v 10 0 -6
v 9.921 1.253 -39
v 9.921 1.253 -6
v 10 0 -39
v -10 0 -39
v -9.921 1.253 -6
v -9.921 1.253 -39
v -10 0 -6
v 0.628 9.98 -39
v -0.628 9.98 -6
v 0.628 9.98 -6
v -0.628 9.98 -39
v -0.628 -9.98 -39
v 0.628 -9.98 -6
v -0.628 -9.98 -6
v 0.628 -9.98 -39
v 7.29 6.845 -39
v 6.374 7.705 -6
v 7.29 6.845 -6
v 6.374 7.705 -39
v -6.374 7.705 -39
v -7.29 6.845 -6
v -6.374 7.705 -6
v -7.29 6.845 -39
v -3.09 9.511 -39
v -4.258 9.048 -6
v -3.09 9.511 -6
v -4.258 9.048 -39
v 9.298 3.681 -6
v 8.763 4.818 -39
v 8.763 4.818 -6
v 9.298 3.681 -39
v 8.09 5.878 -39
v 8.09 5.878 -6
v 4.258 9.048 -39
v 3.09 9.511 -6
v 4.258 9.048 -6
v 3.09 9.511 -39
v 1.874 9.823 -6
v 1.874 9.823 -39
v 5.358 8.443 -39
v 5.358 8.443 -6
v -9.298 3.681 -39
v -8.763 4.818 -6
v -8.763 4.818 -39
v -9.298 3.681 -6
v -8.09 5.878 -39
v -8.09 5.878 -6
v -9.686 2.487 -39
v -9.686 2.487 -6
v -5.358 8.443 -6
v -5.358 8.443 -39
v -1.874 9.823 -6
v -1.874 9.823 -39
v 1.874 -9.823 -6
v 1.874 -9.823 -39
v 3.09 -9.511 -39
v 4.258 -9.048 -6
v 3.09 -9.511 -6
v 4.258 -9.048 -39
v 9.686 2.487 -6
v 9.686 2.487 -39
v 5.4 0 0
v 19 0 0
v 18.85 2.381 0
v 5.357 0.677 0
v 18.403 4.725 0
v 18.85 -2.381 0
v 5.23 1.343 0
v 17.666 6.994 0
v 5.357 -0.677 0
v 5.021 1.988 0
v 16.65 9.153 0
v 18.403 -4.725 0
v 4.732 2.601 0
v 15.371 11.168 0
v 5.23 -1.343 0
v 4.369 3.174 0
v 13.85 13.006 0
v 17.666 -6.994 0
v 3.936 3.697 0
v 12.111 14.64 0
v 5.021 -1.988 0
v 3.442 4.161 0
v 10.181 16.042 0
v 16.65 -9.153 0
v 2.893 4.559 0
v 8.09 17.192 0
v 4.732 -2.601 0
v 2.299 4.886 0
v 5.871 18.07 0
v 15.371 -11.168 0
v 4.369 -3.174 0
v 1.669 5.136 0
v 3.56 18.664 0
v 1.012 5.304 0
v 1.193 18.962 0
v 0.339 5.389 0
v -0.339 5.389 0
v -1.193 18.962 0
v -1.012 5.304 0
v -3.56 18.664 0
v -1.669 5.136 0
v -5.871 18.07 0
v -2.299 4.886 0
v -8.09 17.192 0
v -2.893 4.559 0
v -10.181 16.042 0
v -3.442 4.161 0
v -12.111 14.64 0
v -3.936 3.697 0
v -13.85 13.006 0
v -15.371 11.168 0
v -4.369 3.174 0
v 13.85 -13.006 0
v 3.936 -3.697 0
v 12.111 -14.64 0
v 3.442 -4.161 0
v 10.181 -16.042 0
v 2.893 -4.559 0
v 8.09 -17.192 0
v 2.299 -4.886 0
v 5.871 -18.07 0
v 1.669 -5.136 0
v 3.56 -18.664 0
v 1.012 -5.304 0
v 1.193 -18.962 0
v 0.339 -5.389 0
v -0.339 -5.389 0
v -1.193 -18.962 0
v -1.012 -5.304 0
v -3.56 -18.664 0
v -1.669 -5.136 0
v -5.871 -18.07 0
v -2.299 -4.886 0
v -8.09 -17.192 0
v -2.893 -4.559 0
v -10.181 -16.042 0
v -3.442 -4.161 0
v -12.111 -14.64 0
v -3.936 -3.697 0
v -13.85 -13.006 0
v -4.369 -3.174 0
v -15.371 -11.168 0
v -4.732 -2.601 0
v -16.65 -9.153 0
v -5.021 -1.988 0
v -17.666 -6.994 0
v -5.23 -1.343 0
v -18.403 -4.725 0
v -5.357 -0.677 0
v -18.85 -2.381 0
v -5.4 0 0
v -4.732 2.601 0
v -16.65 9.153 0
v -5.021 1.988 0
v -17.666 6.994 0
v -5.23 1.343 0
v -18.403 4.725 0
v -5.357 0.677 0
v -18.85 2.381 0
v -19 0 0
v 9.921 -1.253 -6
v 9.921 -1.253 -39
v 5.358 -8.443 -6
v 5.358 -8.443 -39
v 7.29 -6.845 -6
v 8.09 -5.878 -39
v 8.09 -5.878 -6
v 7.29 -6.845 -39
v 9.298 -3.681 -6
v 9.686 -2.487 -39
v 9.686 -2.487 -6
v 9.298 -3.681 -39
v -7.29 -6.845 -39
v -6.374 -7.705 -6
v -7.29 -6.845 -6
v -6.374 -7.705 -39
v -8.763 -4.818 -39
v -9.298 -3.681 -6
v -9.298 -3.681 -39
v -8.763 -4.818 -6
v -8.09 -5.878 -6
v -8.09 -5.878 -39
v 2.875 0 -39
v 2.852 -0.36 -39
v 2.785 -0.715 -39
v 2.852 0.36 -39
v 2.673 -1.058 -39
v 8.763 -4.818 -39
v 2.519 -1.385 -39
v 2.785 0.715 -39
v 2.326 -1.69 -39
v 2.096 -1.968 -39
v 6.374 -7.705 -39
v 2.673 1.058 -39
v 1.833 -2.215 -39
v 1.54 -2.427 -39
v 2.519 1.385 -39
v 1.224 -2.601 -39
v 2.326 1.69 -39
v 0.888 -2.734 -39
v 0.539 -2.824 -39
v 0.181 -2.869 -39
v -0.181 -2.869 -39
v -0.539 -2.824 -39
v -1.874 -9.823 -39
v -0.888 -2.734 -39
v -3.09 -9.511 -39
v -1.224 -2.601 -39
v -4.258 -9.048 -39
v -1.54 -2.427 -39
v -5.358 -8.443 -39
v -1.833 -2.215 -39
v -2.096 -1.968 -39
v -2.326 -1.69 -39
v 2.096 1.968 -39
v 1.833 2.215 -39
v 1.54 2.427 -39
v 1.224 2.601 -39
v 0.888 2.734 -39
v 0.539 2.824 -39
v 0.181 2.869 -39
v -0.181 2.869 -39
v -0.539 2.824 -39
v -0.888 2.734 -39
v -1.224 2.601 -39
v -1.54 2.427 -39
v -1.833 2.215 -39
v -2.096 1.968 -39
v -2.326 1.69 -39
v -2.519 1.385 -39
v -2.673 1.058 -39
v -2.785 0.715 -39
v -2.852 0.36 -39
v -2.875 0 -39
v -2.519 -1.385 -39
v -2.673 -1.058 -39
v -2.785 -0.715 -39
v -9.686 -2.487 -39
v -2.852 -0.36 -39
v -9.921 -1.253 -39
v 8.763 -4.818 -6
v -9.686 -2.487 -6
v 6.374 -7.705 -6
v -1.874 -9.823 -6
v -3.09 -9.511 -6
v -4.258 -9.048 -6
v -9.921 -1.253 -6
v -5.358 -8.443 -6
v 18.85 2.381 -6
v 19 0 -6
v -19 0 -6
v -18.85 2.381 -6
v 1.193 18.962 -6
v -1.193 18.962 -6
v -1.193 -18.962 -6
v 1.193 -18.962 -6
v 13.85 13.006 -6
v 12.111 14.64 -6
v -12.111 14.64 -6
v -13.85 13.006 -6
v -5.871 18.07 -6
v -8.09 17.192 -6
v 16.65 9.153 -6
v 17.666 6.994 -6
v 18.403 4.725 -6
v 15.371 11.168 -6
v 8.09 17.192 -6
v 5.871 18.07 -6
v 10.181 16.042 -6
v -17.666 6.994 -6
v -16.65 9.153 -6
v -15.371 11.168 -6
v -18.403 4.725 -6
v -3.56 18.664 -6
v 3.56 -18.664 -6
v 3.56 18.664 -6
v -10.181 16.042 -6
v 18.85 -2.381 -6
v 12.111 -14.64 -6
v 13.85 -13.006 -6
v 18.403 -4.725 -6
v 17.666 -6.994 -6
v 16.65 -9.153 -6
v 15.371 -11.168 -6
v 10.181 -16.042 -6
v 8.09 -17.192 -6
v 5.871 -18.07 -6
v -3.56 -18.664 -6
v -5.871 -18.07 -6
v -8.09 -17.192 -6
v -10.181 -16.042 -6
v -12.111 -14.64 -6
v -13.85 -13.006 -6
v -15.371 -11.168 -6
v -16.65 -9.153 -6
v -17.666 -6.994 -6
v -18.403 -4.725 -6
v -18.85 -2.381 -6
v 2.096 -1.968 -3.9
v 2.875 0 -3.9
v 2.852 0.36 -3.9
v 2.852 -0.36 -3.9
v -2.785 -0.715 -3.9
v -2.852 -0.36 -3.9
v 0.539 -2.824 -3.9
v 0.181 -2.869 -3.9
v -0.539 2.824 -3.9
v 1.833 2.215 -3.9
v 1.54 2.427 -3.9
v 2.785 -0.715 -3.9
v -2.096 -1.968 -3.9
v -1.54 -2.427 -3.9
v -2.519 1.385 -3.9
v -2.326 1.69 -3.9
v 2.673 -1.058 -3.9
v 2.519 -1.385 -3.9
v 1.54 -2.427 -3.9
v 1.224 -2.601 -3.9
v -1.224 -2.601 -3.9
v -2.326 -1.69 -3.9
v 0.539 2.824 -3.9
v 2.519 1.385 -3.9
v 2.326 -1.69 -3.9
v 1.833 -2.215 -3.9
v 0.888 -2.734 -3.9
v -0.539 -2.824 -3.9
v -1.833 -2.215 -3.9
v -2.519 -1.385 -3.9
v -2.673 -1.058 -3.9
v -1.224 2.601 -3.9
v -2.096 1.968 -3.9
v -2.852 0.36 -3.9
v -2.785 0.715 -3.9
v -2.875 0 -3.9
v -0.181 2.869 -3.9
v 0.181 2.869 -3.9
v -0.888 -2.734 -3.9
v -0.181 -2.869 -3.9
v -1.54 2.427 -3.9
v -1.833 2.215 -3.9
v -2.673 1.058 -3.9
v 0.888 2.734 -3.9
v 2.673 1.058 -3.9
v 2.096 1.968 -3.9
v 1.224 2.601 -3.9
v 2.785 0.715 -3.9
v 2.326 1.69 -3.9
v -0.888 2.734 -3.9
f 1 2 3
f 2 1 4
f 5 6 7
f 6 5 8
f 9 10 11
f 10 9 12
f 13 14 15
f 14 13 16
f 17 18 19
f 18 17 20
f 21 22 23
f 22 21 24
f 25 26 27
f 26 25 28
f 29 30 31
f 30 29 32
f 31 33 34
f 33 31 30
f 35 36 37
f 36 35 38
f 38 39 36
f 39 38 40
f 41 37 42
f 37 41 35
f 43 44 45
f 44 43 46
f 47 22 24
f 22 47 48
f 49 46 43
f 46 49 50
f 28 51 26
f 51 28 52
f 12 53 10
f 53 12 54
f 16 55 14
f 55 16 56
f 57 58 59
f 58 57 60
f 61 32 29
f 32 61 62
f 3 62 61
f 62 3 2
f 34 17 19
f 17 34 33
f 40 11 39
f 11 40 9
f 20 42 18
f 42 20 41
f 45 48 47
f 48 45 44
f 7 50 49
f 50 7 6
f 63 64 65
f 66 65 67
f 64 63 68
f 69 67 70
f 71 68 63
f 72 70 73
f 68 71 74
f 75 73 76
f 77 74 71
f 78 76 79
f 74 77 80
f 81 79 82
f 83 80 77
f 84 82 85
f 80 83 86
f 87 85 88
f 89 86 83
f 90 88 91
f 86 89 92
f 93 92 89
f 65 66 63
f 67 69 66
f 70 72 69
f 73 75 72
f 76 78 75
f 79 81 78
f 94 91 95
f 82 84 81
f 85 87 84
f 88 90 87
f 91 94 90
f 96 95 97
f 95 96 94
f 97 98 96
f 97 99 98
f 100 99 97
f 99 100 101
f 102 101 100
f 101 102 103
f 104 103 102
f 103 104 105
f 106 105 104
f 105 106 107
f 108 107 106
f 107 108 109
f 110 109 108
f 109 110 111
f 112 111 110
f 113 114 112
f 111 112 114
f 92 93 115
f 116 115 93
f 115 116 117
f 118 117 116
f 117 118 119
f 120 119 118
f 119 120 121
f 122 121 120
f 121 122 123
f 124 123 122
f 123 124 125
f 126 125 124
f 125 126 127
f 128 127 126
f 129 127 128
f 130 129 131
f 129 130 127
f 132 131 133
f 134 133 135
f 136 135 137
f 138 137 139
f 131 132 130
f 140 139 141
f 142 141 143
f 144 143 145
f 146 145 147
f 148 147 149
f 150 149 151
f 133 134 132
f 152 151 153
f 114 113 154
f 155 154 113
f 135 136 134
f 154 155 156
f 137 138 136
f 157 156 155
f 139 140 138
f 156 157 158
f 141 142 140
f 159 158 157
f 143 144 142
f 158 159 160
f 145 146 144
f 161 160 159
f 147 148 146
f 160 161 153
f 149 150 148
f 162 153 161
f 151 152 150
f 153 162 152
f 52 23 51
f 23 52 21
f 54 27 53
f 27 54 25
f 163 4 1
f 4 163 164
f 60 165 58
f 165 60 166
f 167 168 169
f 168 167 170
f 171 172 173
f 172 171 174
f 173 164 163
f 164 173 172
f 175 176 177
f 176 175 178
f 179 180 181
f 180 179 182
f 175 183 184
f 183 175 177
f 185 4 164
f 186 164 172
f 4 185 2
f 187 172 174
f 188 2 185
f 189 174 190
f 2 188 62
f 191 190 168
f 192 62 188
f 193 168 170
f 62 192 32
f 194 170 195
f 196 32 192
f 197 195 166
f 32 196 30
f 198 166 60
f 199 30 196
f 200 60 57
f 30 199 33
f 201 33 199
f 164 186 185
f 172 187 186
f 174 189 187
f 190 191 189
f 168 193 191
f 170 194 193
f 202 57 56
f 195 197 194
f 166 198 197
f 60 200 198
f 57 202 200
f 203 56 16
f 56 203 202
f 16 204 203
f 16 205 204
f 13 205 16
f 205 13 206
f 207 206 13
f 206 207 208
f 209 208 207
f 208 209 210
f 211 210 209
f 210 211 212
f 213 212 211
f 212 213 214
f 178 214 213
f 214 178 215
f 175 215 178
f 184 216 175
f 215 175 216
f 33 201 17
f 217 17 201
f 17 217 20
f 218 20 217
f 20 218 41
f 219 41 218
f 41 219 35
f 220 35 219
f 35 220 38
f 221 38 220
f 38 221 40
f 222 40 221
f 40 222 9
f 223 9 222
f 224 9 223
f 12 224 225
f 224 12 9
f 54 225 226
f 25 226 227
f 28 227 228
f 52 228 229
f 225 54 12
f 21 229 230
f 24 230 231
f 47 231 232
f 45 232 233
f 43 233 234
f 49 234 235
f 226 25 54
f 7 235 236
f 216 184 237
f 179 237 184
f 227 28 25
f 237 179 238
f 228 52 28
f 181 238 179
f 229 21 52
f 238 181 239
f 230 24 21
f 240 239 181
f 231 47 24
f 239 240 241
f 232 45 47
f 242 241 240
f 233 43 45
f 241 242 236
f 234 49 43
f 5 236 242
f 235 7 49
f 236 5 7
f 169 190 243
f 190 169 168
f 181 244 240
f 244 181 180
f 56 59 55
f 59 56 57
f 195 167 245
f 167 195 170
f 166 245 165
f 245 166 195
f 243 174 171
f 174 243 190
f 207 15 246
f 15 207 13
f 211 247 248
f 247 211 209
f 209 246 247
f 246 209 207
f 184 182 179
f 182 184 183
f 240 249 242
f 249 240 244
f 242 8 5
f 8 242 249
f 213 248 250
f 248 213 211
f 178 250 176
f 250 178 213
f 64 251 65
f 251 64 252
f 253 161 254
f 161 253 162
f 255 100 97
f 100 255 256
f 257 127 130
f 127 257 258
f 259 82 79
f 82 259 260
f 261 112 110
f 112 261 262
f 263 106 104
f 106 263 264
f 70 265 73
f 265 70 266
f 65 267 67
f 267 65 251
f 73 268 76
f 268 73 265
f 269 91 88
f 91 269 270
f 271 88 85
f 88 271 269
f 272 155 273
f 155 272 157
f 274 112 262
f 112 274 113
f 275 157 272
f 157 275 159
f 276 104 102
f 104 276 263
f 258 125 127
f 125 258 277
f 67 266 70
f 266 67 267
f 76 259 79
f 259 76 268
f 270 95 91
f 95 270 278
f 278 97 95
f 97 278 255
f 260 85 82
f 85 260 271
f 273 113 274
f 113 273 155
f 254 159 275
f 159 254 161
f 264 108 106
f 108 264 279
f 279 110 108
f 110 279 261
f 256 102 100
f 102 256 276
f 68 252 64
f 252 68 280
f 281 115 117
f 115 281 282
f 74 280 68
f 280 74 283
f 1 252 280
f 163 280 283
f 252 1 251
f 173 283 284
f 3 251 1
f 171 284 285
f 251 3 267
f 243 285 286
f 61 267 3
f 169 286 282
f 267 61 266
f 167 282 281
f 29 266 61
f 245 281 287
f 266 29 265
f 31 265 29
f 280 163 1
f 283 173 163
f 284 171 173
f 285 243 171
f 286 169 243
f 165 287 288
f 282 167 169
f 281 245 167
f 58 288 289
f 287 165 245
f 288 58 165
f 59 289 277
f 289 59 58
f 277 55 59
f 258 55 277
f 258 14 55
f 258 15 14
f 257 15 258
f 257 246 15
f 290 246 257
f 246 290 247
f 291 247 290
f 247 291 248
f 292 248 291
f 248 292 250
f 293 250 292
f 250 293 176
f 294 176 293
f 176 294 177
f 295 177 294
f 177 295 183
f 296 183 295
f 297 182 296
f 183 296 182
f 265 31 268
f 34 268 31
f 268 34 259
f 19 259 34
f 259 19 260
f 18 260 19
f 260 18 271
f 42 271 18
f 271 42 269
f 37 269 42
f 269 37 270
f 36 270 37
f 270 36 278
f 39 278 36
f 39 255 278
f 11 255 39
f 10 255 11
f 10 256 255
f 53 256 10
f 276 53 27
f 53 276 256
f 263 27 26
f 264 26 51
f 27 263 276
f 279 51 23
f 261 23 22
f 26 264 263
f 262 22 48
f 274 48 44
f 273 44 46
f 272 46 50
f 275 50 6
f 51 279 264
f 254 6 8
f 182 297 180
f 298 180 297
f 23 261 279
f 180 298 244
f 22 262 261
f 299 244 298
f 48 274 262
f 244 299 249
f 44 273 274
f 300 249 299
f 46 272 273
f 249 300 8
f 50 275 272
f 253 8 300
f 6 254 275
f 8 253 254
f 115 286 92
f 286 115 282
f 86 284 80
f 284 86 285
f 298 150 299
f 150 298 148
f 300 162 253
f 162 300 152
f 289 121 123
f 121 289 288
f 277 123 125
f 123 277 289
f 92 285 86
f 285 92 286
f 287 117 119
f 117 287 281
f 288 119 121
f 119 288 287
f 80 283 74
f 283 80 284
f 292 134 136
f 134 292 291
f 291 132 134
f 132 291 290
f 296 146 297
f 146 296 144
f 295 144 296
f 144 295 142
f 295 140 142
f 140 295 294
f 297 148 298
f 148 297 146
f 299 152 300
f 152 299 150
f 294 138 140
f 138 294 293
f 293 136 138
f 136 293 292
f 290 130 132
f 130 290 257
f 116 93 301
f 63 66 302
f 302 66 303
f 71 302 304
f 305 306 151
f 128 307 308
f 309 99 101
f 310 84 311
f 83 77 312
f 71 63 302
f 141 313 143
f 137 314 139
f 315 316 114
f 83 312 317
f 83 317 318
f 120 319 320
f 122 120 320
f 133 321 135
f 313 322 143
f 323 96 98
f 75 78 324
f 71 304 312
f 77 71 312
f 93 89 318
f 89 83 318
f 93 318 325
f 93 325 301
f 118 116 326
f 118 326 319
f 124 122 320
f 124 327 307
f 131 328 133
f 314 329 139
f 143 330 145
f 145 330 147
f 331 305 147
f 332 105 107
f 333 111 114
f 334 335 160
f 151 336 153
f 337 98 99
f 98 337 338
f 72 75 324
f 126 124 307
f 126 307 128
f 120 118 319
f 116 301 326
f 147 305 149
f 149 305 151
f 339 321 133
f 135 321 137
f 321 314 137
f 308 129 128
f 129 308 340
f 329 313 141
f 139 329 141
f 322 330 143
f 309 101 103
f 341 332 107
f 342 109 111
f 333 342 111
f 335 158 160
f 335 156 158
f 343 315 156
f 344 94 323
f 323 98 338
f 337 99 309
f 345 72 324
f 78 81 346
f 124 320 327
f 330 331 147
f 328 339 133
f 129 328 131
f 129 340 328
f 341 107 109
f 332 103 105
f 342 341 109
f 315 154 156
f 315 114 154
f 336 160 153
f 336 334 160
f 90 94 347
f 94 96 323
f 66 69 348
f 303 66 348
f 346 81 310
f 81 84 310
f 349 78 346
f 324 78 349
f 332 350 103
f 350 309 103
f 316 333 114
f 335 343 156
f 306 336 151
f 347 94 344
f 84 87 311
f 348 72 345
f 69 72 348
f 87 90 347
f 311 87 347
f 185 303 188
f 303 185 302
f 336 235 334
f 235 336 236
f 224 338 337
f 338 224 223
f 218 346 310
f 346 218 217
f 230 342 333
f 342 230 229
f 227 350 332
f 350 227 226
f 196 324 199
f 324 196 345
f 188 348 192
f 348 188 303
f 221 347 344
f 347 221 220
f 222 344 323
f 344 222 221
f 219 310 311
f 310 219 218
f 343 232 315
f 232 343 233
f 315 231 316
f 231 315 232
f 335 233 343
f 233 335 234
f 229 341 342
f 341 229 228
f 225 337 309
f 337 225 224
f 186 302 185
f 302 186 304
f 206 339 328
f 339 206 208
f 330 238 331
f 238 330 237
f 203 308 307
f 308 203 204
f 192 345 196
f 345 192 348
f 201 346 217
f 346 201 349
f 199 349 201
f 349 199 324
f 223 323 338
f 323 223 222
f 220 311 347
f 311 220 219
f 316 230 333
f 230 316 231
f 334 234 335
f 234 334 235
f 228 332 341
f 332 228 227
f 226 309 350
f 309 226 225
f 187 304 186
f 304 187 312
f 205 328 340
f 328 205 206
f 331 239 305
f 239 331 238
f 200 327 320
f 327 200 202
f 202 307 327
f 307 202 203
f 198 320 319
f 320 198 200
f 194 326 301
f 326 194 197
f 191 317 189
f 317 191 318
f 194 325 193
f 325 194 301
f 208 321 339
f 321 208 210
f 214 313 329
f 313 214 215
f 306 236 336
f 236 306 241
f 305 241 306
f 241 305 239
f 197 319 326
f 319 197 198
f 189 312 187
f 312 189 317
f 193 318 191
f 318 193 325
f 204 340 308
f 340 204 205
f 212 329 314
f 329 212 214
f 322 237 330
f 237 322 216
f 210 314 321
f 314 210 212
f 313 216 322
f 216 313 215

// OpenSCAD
$fn = 50;


difference() {
	union() {
		translate(v = [0, 0, -39.0000000000]) {
			cylinder(h = 39, r = 10.0000000000);
		}
		translate(v = [0, 0, -6.0000000000]) {
			cylinder(h = 6, r = 19.0000000000);
		}
	}
	union() {
		translate(v = [0, 0, 0]) {
			rotate(a = [0, 0, 0]) {
				difference() {
					union() {
						#translate(v = [0, 0, -39.0000000000]) {
							cylinder(h = 39, r = 2.6000000000);
						}
						#translate(v = [0, 0, -3.9000000000]) {
							cylinder(h = 3.9000000000, r = 10.0000000000, r1 = 2.8750000000, r2 = 5.4000000000);
						}
						#translate(v = [0, 0, -39.0000000000]) {
							cylinder(h = 39, r = 2.8750000000);
						}
						#translate(v = [0, 0, -39.0000000000]) {
							cylinder(h = 39, r = 2.6000000000);
						}
					}
					union();
				}
			}
		}
	}
}
